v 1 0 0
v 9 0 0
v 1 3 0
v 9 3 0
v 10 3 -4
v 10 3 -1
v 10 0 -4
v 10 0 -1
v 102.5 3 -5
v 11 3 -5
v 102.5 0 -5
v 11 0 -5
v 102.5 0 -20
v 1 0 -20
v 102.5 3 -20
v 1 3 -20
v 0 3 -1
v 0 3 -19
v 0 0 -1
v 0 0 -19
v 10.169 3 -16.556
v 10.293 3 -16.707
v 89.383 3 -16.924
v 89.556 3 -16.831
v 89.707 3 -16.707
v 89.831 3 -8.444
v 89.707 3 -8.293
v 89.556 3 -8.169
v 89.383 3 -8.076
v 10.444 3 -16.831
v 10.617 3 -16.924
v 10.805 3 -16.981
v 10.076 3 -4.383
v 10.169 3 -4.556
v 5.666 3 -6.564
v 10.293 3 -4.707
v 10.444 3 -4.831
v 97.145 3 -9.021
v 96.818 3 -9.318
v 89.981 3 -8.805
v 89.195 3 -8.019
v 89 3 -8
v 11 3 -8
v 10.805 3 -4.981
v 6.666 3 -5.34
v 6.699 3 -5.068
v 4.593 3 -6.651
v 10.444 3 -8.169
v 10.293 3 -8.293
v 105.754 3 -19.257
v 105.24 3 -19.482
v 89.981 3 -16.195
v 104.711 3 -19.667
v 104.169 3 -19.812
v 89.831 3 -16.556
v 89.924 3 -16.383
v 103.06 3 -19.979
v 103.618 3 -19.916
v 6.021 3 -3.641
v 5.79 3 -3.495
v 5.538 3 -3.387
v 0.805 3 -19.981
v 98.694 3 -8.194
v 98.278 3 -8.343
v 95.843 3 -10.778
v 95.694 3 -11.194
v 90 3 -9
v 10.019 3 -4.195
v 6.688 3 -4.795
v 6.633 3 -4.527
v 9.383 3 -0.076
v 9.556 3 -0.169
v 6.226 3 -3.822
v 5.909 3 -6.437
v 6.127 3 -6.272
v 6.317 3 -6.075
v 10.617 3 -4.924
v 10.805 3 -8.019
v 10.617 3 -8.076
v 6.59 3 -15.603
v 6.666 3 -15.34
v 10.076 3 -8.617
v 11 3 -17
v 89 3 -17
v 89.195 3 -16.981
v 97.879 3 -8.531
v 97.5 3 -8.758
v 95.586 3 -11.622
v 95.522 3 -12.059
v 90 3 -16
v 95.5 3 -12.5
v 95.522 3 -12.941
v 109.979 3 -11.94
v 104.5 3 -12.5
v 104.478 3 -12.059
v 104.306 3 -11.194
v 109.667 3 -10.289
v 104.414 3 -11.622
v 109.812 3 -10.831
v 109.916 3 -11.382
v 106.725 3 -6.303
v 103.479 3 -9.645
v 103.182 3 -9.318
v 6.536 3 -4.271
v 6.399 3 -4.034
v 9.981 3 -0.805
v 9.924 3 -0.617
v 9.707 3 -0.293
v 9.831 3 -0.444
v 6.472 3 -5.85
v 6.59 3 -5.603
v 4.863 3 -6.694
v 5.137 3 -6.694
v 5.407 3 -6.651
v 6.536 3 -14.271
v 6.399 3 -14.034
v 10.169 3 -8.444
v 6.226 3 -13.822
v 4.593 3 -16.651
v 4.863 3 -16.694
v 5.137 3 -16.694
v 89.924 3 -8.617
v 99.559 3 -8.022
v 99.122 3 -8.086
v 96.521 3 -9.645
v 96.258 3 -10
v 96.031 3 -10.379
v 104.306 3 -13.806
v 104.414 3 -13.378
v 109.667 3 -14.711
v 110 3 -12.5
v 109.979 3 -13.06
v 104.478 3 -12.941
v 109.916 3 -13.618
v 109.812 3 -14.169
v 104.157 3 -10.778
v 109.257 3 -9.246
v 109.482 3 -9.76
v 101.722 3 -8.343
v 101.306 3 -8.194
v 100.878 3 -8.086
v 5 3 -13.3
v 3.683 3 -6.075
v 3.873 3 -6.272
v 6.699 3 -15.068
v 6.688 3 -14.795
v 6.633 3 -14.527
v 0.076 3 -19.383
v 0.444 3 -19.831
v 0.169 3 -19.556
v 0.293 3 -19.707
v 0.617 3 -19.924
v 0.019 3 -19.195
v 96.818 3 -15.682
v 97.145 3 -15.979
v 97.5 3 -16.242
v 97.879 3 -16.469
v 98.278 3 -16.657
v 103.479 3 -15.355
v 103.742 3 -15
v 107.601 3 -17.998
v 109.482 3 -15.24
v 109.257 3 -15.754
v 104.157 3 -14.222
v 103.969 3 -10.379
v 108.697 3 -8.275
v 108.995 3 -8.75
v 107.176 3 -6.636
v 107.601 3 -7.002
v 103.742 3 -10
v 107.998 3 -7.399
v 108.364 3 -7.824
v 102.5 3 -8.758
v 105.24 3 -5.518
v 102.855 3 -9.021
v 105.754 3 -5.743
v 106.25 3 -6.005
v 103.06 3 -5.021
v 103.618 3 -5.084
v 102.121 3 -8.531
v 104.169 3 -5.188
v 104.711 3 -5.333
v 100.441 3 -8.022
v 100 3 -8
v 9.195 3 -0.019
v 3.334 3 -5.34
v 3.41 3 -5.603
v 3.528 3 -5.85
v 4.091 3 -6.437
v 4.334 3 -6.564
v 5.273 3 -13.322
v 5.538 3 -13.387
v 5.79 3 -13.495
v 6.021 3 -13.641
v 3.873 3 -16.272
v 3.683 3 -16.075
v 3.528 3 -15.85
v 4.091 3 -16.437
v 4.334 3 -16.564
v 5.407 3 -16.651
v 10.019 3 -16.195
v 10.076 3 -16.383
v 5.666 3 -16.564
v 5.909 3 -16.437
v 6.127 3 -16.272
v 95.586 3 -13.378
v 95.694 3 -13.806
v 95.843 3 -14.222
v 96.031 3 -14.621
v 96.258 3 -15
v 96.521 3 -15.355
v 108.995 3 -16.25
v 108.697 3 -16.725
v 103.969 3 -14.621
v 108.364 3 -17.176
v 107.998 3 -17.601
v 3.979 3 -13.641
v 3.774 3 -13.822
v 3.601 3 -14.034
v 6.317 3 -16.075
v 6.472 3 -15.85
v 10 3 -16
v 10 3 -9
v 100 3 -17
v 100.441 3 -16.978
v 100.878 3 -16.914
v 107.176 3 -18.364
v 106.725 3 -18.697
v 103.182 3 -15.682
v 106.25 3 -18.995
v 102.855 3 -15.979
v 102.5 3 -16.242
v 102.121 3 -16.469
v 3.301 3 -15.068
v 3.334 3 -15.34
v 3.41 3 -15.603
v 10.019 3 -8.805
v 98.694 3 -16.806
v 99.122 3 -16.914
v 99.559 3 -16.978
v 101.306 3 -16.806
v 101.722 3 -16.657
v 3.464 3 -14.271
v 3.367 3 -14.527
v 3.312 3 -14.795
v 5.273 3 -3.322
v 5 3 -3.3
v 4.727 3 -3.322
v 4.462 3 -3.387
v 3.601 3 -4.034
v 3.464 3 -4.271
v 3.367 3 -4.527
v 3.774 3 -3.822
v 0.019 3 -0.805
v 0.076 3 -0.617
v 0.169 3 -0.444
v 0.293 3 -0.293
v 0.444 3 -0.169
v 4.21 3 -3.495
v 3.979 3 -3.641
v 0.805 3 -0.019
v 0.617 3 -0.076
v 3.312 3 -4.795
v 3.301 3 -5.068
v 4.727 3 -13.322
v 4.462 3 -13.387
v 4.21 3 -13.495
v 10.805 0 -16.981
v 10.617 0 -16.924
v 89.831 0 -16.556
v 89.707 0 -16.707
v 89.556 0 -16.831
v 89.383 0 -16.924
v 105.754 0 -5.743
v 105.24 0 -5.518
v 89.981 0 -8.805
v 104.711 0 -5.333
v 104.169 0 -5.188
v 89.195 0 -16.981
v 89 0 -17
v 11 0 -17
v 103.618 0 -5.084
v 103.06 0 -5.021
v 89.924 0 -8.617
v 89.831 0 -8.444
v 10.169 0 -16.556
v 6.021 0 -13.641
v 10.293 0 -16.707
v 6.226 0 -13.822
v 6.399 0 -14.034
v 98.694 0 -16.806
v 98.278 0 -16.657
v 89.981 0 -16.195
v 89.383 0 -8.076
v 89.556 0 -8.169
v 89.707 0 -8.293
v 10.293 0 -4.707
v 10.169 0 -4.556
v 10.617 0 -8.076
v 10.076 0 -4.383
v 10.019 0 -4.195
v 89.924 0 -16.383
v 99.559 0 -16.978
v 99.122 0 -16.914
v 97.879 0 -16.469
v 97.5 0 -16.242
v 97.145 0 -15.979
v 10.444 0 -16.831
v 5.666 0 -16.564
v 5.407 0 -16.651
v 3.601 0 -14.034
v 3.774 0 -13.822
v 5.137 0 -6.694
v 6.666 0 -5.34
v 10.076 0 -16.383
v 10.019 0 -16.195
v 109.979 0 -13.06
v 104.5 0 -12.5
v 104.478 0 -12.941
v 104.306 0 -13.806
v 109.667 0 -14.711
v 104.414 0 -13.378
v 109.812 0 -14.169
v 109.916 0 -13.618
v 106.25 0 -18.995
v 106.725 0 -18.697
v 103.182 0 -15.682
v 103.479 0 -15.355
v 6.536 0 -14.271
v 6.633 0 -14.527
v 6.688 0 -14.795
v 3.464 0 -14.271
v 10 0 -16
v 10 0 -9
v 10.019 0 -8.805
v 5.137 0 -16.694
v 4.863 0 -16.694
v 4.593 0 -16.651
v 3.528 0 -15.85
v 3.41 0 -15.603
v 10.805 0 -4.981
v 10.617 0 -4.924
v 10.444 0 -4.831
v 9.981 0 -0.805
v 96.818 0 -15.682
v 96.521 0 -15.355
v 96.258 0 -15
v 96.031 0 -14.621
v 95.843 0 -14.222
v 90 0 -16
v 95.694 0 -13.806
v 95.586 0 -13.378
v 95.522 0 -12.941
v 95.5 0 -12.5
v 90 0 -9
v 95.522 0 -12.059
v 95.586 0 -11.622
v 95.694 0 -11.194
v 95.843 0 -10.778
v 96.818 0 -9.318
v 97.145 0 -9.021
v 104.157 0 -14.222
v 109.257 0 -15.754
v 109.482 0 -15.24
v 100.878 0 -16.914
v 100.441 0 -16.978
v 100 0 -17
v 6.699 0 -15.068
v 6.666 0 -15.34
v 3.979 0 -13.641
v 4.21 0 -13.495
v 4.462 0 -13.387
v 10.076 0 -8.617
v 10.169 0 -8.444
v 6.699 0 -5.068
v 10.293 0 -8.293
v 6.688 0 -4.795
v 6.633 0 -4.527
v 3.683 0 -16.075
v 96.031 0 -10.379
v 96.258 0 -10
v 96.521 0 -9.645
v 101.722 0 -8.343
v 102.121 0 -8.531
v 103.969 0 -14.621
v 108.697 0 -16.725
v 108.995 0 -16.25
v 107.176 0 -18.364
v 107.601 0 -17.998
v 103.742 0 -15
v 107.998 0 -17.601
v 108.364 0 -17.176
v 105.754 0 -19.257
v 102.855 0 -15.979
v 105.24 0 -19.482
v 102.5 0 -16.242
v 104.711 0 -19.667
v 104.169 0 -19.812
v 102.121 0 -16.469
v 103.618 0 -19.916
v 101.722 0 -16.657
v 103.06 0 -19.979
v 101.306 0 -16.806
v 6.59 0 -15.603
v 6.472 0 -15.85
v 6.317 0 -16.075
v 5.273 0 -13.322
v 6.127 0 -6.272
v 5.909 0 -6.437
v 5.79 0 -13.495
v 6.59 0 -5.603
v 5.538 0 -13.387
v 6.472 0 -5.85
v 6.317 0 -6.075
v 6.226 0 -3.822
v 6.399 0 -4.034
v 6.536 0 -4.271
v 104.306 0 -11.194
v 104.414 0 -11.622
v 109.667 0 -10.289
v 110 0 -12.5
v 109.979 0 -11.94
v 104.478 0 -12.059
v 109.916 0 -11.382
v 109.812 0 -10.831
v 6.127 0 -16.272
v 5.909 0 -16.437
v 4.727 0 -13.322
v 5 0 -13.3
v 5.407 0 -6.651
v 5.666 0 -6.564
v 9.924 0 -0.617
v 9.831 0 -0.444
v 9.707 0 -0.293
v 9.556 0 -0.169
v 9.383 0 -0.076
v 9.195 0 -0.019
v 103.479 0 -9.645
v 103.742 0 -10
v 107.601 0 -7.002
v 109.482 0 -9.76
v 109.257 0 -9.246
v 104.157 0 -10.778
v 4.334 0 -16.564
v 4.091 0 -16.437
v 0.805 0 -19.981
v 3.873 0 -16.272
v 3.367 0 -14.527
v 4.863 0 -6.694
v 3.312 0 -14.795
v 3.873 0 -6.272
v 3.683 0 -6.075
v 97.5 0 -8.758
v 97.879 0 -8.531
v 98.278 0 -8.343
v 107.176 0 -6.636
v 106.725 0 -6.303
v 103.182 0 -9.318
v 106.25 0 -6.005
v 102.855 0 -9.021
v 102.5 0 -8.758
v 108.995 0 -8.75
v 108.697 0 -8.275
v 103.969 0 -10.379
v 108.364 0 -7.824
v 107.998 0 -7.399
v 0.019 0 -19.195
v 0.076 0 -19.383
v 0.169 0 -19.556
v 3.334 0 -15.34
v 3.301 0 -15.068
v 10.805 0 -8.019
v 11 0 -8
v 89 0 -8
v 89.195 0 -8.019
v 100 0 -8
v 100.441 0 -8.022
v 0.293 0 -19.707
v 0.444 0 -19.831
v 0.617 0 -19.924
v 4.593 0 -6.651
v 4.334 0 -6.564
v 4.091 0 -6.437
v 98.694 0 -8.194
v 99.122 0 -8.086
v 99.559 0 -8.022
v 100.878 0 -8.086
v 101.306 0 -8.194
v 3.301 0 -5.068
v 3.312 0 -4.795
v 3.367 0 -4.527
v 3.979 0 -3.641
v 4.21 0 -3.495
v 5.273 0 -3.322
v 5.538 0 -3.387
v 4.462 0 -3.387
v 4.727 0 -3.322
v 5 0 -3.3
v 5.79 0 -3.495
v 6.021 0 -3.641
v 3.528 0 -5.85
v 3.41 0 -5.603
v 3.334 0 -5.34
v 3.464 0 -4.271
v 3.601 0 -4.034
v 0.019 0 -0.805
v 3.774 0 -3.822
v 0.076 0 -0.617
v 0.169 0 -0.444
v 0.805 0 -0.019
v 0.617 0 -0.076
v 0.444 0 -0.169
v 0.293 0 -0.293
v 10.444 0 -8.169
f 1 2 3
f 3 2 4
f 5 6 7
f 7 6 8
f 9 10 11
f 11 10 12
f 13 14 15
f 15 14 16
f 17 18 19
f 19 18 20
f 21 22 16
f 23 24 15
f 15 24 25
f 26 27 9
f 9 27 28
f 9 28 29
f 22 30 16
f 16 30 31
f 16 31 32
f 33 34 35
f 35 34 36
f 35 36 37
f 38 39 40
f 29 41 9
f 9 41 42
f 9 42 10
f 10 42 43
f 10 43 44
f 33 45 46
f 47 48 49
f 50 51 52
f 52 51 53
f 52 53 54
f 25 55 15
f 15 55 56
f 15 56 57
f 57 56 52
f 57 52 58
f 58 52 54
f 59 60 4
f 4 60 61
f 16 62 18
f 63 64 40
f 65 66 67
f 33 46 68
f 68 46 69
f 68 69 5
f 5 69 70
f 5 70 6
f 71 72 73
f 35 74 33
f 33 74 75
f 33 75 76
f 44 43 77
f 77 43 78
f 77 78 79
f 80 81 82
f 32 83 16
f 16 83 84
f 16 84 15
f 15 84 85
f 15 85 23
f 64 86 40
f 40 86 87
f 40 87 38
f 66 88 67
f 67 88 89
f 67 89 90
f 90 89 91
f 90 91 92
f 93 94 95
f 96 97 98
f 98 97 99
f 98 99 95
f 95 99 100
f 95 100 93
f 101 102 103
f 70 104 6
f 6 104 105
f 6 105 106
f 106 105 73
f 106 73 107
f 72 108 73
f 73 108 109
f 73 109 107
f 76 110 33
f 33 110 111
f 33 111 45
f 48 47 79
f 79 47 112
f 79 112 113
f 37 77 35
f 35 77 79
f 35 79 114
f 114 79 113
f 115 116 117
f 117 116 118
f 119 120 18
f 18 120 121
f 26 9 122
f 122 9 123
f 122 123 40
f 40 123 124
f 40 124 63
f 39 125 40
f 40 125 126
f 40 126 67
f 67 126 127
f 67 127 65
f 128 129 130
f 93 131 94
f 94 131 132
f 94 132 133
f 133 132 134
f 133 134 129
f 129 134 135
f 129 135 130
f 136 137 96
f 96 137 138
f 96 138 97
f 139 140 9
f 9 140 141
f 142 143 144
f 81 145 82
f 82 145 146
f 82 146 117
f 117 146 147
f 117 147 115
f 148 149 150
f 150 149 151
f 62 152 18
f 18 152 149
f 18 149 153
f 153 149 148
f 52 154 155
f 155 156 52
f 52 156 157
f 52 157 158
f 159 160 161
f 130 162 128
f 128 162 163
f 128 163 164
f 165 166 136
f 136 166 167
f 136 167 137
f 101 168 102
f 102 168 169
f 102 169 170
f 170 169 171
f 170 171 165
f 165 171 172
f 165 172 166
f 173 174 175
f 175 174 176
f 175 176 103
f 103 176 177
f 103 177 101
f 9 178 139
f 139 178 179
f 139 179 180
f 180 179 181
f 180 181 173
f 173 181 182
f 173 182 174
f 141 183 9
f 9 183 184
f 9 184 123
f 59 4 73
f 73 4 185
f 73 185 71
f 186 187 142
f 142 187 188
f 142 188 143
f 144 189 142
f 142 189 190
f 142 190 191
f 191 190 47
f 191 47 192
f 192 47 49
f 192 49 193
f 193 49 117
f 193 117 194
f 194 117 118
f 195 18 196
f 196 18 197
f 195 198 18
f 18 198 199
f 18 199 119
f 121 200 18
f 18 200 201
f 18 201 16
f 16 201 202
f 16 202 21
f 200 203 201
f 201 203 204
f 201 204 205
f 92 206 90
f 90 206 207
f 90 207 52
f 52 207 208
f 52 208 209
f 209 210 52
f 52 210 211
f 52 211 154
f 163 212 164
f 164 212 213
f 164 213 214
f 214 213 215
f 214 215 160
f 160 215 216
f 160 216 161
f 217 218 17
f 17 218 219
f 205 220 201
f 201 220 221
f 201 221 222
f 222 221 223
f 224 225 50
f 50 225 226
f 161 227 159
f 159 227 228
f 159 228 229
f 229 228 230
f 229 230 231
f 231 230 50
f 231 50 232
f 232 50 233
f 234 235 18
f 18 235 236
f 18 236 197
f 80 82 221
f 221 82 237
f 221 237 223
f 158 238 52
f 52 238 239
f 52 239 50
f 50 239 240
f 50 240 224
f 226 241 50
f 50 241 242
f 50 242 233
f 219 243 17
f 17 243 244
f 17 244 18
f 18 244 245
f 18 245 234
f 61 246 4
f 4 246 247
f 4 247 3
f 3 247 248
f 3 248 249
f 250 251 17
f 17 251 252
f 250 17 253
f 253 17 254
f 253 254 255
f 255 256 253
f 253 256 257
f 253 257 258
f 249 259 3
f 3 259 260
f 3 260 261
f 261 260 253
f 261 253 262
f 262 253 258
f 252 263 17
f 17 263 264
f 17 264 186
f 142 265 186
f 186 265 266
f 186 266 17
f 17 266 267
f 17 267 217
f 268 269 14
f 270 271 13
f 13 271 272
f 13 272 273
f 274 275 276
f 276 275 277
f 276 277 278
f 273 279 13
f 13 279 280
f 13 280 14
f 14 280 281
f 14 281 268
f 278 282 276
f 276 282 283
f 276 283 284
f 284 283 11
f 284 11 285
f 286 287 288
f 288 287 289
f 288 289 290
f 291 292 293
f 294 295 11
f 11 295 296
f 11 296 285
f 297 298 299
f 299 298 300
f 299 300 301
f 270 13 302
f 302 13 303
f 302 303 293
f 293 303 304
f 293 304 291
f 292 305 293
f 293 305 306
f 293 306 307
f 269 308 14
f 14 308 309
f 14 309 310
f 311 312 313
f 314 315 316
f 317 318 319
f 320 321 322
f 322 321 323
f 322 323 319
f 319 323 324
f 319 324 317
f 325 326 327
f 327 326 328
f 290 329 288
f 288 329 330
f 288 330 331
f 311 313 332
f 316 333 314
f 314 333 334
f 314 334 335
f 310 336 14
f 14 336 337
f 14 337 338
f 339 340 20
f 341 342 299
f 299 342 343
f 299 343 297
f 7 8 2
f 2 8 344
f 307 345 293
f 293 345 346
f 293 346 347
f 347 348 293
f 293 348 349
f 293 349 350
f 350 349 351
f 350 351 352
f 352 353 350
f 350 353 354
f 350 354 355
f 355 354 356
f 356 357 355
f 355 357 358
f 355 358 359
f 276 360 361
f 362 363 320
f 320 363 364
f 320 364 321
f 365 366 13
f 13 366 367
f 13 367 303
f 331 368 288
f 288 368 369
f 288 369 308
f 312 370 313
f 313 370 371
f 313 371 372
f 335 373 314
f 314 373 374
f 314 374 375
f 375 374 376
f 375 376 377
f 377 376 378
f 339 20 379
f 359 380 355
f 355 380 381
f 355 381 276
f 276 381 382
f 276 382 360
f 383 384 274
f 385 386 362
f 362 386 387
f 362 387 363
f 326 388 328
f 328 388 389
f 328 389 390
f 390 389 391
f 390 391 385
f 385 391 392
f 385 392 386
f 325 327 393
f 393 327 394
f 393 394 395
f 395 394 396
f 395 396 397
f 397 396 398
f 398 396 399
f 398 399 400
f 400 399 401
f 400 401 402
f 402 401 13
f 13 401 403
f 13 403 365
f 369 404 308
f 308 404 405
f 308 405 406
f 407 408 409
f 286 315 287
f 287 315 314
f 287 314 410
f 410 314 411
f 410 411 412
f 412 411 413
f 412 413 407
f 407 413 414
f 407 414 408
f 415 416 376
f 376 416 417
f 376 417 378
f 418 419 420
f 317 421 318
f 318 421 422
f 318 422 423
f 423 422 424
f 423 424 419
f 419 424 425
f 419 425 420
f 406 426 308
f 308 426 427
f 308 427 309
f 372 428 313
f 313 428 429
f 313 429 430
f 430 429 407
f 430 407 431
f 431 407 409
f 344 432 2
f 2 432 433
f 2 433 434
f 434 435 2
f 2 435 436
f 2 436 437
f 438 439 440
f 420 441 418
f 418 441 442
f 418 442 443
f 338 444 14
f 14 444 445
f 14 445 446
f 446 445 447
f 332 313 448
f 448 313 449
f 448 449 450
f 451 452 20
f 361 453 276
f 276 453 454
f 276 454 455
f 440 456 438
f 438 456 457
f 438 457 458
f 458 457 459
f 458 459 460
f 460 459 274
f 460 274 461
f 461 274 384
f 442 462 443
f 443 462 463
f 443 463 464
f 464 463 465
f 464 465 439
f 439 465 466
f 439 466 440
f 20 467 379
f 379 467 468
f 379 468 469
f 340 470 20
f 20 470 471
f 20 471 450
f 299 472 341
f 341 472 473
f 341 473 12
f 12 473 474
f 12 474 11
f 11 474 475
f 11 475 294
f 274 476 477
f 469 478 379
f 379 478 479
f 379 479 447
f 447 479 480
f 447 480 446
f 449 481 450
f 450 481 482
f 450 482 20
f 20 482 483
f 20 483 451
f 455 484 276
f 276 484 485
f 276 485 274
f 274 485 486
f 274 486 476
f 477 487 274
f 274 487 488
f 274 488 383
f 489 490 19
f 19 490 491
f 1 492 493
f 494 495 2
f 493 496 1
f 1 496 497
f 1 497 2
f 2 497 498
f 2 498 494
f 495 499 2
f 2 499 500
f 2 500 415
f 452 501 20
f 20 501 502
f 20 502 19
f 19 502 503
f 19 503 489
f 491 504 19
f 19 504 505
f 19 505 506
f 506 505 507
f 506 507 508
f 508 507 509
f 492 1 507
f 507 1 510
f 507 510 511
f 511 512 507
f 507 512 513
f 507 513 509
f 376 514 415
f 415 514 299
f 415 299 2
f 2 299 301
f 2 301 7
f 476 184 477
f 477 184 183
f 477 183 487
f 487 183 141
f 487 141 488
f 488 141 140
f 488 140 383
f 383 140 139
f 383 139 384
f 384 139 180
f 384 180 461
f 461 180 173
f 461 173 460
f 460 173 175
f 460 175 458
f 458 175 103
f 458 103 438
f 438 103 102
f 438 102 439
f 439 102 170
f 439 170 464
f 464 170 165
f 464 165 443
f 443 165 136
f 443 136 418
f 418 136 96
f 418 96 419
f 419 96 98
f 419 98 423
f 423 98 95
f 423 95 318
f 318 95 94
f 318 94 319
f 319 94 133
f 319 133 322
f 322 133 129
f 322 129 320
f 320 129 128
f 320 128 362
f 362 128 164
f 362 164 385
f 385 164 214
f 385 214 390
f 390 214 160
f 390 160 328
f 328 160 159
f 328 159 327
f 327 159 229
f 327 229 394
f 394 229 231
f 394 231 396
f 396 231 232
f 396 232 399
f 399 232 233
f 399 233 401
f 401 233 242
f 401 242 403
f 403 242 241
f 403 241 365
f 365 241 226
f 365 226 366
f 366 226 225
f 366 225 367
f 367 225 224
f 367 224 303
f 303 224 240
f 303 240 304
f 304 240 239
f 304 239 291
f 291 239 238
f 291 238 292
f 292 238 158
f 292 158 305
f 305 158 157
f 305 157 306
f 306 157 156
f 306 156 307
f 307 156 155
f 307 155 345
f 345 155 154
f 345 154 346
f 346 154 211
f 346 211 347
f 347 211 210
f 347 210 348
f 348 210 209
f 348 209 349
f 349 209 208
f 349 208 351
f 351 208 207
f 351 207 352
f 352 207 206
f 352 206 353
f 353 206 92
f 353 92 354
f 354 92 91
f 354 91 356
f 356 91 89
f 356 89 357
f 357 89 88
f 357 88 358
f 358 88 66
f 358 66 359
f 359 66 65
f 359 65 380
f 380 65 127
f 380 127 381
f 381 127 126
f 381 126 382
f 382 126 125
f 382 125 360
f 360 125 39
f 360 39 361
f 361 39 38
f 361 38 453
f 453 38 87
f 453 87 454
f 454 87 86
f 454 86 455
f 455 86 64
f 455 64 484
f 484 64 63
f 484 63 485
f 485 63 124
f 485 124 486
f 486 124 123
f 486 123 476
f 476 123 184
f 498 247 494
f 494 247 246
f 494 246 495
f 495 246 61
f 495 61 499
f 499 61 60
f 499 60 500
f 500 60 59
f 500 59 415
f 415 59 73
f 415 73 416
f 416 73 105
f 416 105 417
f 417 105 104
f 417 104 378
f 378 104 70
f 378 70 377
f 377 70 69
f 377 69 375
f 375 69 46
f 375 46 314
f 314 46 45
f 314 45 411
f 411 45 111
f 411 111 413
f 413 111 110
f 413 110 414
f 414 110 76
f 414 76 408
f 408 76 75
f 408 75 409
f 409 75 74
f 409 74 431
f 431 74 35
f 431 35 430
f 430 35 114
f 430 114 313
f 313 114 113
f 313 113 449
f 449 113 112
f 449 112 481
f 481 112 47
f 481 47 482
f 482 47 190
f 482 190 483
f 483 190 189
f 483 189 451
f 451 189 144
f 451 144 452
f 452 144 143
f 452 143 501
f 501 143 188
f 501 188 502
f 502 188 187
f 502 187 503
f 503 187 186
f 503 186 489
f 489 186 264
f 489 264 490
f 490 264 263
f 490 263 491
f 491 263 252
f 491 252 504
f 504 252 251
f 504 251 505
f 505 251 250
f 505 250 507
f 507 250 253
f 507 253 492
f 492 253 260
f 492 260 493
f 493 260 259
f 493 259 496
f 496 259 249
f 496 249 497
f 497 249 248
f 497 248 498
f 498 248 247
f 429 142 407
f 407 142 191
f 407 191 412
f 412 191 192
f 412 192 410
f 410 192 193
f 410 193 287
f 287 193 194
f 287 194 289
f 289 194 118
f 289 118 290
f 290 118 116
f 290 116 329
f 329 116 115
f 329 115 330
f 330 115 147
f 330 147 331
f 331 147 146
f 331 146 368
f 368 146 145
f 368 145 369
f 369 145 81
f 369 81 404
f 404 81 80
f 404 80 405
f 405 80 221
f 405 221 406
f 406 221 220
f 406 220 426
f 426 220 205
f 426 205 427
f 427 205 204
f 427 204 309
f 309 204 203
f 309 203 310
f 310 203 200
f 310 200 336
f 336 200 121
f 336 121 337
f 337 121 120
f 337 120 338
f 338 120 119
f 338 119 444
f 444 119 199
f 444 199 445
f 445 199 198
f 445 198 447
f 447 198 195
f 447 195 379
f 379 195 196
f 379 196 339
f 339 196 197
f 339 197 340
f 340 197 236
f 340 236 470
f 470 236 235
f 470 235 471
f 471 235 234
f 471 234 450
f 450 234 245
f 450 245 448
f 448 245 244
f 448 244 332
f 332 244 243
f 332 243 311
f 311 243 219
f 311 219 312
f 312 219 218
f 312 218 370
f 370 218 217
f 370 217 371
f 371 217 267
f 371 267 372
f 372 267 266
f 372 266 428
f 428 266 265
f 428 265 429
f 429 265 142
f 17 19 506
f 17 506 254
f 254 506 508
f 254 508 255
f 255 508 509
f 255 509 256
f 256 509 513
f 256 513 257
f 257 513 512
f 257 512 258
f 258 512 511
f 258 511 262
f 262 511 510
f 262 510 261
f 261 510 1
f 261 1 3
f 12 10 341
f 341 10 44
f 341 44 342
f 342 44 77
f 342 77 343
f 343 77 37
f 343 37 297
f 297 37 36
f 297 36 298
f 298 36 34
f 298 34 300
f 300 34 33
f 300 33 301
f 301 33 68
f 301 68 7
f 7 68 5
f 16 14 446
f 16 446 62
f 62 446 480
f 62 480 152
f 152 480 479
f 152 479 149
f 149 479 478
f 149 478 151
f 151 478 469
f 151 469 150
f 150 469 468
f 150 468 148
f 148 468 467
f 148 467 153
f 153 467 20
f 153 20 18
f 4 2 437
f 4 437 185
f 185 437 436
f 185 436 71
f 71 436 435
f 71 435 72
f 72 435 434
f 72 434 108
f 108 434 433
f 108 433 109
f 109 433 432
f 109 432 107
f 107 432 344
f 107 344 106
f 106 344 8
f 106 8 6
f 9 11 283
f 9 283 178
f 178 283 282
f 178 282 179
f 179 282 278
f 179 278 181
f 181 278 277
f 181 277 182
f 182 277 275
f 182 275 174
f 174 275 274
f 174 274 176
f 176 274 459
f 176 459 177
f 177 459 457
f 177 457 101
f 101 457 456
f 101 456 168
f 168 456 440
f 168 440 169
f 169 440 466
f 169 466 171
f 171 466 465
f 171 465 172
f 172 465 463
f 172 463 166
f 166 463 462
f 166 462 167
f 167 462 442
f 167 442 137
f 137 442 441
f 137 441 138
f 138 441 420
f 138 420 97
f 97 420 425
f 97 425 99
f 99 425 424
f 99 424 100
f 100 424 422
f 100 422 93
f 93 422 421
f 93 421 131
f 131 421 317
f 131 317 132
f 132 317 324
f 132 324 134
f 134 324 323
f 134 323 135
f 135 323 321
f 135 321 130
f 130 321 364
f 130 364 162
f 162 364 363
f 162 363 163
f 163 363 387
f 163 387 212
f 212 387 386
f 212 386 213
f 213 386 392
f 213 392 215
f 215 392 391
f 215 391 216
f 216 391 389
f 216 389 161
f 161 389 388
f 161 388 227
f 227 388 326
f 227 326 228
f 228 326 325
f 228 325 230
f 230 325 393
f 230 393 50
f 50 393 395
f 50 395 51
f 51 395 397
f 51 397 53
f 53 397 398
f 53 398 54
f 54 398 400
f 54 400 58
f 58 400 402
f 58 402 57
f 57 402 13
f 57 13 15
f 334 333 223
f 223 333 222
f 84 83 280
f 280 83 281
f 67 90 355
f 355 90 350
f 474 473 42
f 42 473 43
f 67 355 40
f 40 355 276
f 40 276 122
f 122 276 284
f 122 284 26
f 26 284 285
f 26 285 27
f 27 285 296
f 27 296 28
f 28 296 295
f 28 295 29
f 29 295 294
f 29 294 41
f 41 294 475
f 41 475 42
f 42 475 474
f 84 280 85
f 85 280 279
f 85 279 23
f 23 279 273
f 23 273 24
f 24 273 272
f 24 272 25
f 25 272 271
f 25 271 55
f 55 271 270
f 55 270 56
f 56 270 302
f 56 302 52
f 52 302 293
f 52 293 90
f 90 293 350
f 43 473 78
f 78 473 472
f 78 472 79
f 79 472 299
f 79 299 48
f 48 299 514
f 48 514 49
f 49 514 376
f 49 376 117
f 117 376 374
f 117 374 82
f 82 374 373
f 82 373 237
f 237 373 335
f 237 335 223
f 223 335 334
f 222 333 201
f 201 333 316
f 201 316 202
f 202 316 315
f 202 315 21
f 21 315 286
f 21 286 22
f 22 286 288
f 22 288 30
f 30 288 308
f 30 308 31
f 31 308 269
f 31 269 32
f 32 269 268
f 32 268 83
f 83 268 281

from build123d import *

# Parameters (mm, degrees)
BOSS_EXTRUDE1_DEPTH  = 3
M8_CLEARANCE_HOLE1_D = 9
M3_CLEARANCE_HOLE1_D = 3.4
FILLET1_R            = 1
FILLET2_R            = 7.5
SKETCH6_W            = 80
SKETCH6_H            = 9
CUT_EXTRUDE1_DEPTH   = 112.843640856
FILLET3_R            = 1


with BuildPart() as part:
    # Sketch1 → Boss-Extrude1 (new body)
    with BuildSketch(Plane(origin=(0, 0, 0), x_dir=(1, 0, 0), z_dir=(0, 1, 0))):
        Polygon((0, 0), (0, 20), (110, 20), (110, 5), (10, 5), (10, 0), align=None)
    extrude(amount=BOSS_EXTRUDE1_DEPTH)

    # M8 Clearance Hole1 (through all)
    with Locations(Plane(origin=(100, 3, -12.5), x_dir=(0, 0, 1), z_dir=(0, 1, 0))):
        with Locations((0, 0)):
            Hole(M8_CLEARANCE_HOLE1_D / 2)

    # M3 Clearance Hole1 (through all)
    with Locations(Plane(origin=(5, 3, -15), x_dir=(0, 0, 1), z_dir=(0, 1, 0))):
        with Locations((0, 0), (10, 0)):
            Hole(M3_CLEARANCE_HOLE1_D / 2)

    # Fillet1
    fillet1_edges = [part.edges().sort_by_distance(p)[0] for p in [
        (0, 1.5, 0),
        (0, 1.5, -20),
        (10, 1.5, -5),
        (10, 1.5, 0),
    ]]
    fillet(fillet1_edges, radius=FILLET1_R)

    # Fillet2
    fillet2_edges = [part.edges().sort_by_distance(p)[0] for p in [
        (110, 1.5, -20),
        (110, 1.5, -5),
    ]]
    fillet(fillet2_edges, radius=FILLET2_R - 0.0001)  # a hair under: the kernel refuses the full size

    # Sketch6 → Cut-Extrude1 (cut, through all)
    with BuildSketch(Plane(origin=(0, 3, 0), x_dir=(1, 0, 0), z_dir=(0, 1, 0))):
        with Locations((50, 12.5)):
            Rectangle(SKETCH6_W, SKETCH6_H)
    extrude(amount=-CUT_EXTRUDE1_DEPTH, mode=Mode.SUBTRACT)

    # Fillet3
    fillet3_edges = [part.edges().sort_by_distance(p)[0] for p in [
        (10, 1.5, -8),
        (10, 1.5, -17),
        (90, 1.5, -17),
        (90, 1.5, -8),
    ]]
    fillet(fillet3_edges, radius=FILLET3_R)


solid = part.part
